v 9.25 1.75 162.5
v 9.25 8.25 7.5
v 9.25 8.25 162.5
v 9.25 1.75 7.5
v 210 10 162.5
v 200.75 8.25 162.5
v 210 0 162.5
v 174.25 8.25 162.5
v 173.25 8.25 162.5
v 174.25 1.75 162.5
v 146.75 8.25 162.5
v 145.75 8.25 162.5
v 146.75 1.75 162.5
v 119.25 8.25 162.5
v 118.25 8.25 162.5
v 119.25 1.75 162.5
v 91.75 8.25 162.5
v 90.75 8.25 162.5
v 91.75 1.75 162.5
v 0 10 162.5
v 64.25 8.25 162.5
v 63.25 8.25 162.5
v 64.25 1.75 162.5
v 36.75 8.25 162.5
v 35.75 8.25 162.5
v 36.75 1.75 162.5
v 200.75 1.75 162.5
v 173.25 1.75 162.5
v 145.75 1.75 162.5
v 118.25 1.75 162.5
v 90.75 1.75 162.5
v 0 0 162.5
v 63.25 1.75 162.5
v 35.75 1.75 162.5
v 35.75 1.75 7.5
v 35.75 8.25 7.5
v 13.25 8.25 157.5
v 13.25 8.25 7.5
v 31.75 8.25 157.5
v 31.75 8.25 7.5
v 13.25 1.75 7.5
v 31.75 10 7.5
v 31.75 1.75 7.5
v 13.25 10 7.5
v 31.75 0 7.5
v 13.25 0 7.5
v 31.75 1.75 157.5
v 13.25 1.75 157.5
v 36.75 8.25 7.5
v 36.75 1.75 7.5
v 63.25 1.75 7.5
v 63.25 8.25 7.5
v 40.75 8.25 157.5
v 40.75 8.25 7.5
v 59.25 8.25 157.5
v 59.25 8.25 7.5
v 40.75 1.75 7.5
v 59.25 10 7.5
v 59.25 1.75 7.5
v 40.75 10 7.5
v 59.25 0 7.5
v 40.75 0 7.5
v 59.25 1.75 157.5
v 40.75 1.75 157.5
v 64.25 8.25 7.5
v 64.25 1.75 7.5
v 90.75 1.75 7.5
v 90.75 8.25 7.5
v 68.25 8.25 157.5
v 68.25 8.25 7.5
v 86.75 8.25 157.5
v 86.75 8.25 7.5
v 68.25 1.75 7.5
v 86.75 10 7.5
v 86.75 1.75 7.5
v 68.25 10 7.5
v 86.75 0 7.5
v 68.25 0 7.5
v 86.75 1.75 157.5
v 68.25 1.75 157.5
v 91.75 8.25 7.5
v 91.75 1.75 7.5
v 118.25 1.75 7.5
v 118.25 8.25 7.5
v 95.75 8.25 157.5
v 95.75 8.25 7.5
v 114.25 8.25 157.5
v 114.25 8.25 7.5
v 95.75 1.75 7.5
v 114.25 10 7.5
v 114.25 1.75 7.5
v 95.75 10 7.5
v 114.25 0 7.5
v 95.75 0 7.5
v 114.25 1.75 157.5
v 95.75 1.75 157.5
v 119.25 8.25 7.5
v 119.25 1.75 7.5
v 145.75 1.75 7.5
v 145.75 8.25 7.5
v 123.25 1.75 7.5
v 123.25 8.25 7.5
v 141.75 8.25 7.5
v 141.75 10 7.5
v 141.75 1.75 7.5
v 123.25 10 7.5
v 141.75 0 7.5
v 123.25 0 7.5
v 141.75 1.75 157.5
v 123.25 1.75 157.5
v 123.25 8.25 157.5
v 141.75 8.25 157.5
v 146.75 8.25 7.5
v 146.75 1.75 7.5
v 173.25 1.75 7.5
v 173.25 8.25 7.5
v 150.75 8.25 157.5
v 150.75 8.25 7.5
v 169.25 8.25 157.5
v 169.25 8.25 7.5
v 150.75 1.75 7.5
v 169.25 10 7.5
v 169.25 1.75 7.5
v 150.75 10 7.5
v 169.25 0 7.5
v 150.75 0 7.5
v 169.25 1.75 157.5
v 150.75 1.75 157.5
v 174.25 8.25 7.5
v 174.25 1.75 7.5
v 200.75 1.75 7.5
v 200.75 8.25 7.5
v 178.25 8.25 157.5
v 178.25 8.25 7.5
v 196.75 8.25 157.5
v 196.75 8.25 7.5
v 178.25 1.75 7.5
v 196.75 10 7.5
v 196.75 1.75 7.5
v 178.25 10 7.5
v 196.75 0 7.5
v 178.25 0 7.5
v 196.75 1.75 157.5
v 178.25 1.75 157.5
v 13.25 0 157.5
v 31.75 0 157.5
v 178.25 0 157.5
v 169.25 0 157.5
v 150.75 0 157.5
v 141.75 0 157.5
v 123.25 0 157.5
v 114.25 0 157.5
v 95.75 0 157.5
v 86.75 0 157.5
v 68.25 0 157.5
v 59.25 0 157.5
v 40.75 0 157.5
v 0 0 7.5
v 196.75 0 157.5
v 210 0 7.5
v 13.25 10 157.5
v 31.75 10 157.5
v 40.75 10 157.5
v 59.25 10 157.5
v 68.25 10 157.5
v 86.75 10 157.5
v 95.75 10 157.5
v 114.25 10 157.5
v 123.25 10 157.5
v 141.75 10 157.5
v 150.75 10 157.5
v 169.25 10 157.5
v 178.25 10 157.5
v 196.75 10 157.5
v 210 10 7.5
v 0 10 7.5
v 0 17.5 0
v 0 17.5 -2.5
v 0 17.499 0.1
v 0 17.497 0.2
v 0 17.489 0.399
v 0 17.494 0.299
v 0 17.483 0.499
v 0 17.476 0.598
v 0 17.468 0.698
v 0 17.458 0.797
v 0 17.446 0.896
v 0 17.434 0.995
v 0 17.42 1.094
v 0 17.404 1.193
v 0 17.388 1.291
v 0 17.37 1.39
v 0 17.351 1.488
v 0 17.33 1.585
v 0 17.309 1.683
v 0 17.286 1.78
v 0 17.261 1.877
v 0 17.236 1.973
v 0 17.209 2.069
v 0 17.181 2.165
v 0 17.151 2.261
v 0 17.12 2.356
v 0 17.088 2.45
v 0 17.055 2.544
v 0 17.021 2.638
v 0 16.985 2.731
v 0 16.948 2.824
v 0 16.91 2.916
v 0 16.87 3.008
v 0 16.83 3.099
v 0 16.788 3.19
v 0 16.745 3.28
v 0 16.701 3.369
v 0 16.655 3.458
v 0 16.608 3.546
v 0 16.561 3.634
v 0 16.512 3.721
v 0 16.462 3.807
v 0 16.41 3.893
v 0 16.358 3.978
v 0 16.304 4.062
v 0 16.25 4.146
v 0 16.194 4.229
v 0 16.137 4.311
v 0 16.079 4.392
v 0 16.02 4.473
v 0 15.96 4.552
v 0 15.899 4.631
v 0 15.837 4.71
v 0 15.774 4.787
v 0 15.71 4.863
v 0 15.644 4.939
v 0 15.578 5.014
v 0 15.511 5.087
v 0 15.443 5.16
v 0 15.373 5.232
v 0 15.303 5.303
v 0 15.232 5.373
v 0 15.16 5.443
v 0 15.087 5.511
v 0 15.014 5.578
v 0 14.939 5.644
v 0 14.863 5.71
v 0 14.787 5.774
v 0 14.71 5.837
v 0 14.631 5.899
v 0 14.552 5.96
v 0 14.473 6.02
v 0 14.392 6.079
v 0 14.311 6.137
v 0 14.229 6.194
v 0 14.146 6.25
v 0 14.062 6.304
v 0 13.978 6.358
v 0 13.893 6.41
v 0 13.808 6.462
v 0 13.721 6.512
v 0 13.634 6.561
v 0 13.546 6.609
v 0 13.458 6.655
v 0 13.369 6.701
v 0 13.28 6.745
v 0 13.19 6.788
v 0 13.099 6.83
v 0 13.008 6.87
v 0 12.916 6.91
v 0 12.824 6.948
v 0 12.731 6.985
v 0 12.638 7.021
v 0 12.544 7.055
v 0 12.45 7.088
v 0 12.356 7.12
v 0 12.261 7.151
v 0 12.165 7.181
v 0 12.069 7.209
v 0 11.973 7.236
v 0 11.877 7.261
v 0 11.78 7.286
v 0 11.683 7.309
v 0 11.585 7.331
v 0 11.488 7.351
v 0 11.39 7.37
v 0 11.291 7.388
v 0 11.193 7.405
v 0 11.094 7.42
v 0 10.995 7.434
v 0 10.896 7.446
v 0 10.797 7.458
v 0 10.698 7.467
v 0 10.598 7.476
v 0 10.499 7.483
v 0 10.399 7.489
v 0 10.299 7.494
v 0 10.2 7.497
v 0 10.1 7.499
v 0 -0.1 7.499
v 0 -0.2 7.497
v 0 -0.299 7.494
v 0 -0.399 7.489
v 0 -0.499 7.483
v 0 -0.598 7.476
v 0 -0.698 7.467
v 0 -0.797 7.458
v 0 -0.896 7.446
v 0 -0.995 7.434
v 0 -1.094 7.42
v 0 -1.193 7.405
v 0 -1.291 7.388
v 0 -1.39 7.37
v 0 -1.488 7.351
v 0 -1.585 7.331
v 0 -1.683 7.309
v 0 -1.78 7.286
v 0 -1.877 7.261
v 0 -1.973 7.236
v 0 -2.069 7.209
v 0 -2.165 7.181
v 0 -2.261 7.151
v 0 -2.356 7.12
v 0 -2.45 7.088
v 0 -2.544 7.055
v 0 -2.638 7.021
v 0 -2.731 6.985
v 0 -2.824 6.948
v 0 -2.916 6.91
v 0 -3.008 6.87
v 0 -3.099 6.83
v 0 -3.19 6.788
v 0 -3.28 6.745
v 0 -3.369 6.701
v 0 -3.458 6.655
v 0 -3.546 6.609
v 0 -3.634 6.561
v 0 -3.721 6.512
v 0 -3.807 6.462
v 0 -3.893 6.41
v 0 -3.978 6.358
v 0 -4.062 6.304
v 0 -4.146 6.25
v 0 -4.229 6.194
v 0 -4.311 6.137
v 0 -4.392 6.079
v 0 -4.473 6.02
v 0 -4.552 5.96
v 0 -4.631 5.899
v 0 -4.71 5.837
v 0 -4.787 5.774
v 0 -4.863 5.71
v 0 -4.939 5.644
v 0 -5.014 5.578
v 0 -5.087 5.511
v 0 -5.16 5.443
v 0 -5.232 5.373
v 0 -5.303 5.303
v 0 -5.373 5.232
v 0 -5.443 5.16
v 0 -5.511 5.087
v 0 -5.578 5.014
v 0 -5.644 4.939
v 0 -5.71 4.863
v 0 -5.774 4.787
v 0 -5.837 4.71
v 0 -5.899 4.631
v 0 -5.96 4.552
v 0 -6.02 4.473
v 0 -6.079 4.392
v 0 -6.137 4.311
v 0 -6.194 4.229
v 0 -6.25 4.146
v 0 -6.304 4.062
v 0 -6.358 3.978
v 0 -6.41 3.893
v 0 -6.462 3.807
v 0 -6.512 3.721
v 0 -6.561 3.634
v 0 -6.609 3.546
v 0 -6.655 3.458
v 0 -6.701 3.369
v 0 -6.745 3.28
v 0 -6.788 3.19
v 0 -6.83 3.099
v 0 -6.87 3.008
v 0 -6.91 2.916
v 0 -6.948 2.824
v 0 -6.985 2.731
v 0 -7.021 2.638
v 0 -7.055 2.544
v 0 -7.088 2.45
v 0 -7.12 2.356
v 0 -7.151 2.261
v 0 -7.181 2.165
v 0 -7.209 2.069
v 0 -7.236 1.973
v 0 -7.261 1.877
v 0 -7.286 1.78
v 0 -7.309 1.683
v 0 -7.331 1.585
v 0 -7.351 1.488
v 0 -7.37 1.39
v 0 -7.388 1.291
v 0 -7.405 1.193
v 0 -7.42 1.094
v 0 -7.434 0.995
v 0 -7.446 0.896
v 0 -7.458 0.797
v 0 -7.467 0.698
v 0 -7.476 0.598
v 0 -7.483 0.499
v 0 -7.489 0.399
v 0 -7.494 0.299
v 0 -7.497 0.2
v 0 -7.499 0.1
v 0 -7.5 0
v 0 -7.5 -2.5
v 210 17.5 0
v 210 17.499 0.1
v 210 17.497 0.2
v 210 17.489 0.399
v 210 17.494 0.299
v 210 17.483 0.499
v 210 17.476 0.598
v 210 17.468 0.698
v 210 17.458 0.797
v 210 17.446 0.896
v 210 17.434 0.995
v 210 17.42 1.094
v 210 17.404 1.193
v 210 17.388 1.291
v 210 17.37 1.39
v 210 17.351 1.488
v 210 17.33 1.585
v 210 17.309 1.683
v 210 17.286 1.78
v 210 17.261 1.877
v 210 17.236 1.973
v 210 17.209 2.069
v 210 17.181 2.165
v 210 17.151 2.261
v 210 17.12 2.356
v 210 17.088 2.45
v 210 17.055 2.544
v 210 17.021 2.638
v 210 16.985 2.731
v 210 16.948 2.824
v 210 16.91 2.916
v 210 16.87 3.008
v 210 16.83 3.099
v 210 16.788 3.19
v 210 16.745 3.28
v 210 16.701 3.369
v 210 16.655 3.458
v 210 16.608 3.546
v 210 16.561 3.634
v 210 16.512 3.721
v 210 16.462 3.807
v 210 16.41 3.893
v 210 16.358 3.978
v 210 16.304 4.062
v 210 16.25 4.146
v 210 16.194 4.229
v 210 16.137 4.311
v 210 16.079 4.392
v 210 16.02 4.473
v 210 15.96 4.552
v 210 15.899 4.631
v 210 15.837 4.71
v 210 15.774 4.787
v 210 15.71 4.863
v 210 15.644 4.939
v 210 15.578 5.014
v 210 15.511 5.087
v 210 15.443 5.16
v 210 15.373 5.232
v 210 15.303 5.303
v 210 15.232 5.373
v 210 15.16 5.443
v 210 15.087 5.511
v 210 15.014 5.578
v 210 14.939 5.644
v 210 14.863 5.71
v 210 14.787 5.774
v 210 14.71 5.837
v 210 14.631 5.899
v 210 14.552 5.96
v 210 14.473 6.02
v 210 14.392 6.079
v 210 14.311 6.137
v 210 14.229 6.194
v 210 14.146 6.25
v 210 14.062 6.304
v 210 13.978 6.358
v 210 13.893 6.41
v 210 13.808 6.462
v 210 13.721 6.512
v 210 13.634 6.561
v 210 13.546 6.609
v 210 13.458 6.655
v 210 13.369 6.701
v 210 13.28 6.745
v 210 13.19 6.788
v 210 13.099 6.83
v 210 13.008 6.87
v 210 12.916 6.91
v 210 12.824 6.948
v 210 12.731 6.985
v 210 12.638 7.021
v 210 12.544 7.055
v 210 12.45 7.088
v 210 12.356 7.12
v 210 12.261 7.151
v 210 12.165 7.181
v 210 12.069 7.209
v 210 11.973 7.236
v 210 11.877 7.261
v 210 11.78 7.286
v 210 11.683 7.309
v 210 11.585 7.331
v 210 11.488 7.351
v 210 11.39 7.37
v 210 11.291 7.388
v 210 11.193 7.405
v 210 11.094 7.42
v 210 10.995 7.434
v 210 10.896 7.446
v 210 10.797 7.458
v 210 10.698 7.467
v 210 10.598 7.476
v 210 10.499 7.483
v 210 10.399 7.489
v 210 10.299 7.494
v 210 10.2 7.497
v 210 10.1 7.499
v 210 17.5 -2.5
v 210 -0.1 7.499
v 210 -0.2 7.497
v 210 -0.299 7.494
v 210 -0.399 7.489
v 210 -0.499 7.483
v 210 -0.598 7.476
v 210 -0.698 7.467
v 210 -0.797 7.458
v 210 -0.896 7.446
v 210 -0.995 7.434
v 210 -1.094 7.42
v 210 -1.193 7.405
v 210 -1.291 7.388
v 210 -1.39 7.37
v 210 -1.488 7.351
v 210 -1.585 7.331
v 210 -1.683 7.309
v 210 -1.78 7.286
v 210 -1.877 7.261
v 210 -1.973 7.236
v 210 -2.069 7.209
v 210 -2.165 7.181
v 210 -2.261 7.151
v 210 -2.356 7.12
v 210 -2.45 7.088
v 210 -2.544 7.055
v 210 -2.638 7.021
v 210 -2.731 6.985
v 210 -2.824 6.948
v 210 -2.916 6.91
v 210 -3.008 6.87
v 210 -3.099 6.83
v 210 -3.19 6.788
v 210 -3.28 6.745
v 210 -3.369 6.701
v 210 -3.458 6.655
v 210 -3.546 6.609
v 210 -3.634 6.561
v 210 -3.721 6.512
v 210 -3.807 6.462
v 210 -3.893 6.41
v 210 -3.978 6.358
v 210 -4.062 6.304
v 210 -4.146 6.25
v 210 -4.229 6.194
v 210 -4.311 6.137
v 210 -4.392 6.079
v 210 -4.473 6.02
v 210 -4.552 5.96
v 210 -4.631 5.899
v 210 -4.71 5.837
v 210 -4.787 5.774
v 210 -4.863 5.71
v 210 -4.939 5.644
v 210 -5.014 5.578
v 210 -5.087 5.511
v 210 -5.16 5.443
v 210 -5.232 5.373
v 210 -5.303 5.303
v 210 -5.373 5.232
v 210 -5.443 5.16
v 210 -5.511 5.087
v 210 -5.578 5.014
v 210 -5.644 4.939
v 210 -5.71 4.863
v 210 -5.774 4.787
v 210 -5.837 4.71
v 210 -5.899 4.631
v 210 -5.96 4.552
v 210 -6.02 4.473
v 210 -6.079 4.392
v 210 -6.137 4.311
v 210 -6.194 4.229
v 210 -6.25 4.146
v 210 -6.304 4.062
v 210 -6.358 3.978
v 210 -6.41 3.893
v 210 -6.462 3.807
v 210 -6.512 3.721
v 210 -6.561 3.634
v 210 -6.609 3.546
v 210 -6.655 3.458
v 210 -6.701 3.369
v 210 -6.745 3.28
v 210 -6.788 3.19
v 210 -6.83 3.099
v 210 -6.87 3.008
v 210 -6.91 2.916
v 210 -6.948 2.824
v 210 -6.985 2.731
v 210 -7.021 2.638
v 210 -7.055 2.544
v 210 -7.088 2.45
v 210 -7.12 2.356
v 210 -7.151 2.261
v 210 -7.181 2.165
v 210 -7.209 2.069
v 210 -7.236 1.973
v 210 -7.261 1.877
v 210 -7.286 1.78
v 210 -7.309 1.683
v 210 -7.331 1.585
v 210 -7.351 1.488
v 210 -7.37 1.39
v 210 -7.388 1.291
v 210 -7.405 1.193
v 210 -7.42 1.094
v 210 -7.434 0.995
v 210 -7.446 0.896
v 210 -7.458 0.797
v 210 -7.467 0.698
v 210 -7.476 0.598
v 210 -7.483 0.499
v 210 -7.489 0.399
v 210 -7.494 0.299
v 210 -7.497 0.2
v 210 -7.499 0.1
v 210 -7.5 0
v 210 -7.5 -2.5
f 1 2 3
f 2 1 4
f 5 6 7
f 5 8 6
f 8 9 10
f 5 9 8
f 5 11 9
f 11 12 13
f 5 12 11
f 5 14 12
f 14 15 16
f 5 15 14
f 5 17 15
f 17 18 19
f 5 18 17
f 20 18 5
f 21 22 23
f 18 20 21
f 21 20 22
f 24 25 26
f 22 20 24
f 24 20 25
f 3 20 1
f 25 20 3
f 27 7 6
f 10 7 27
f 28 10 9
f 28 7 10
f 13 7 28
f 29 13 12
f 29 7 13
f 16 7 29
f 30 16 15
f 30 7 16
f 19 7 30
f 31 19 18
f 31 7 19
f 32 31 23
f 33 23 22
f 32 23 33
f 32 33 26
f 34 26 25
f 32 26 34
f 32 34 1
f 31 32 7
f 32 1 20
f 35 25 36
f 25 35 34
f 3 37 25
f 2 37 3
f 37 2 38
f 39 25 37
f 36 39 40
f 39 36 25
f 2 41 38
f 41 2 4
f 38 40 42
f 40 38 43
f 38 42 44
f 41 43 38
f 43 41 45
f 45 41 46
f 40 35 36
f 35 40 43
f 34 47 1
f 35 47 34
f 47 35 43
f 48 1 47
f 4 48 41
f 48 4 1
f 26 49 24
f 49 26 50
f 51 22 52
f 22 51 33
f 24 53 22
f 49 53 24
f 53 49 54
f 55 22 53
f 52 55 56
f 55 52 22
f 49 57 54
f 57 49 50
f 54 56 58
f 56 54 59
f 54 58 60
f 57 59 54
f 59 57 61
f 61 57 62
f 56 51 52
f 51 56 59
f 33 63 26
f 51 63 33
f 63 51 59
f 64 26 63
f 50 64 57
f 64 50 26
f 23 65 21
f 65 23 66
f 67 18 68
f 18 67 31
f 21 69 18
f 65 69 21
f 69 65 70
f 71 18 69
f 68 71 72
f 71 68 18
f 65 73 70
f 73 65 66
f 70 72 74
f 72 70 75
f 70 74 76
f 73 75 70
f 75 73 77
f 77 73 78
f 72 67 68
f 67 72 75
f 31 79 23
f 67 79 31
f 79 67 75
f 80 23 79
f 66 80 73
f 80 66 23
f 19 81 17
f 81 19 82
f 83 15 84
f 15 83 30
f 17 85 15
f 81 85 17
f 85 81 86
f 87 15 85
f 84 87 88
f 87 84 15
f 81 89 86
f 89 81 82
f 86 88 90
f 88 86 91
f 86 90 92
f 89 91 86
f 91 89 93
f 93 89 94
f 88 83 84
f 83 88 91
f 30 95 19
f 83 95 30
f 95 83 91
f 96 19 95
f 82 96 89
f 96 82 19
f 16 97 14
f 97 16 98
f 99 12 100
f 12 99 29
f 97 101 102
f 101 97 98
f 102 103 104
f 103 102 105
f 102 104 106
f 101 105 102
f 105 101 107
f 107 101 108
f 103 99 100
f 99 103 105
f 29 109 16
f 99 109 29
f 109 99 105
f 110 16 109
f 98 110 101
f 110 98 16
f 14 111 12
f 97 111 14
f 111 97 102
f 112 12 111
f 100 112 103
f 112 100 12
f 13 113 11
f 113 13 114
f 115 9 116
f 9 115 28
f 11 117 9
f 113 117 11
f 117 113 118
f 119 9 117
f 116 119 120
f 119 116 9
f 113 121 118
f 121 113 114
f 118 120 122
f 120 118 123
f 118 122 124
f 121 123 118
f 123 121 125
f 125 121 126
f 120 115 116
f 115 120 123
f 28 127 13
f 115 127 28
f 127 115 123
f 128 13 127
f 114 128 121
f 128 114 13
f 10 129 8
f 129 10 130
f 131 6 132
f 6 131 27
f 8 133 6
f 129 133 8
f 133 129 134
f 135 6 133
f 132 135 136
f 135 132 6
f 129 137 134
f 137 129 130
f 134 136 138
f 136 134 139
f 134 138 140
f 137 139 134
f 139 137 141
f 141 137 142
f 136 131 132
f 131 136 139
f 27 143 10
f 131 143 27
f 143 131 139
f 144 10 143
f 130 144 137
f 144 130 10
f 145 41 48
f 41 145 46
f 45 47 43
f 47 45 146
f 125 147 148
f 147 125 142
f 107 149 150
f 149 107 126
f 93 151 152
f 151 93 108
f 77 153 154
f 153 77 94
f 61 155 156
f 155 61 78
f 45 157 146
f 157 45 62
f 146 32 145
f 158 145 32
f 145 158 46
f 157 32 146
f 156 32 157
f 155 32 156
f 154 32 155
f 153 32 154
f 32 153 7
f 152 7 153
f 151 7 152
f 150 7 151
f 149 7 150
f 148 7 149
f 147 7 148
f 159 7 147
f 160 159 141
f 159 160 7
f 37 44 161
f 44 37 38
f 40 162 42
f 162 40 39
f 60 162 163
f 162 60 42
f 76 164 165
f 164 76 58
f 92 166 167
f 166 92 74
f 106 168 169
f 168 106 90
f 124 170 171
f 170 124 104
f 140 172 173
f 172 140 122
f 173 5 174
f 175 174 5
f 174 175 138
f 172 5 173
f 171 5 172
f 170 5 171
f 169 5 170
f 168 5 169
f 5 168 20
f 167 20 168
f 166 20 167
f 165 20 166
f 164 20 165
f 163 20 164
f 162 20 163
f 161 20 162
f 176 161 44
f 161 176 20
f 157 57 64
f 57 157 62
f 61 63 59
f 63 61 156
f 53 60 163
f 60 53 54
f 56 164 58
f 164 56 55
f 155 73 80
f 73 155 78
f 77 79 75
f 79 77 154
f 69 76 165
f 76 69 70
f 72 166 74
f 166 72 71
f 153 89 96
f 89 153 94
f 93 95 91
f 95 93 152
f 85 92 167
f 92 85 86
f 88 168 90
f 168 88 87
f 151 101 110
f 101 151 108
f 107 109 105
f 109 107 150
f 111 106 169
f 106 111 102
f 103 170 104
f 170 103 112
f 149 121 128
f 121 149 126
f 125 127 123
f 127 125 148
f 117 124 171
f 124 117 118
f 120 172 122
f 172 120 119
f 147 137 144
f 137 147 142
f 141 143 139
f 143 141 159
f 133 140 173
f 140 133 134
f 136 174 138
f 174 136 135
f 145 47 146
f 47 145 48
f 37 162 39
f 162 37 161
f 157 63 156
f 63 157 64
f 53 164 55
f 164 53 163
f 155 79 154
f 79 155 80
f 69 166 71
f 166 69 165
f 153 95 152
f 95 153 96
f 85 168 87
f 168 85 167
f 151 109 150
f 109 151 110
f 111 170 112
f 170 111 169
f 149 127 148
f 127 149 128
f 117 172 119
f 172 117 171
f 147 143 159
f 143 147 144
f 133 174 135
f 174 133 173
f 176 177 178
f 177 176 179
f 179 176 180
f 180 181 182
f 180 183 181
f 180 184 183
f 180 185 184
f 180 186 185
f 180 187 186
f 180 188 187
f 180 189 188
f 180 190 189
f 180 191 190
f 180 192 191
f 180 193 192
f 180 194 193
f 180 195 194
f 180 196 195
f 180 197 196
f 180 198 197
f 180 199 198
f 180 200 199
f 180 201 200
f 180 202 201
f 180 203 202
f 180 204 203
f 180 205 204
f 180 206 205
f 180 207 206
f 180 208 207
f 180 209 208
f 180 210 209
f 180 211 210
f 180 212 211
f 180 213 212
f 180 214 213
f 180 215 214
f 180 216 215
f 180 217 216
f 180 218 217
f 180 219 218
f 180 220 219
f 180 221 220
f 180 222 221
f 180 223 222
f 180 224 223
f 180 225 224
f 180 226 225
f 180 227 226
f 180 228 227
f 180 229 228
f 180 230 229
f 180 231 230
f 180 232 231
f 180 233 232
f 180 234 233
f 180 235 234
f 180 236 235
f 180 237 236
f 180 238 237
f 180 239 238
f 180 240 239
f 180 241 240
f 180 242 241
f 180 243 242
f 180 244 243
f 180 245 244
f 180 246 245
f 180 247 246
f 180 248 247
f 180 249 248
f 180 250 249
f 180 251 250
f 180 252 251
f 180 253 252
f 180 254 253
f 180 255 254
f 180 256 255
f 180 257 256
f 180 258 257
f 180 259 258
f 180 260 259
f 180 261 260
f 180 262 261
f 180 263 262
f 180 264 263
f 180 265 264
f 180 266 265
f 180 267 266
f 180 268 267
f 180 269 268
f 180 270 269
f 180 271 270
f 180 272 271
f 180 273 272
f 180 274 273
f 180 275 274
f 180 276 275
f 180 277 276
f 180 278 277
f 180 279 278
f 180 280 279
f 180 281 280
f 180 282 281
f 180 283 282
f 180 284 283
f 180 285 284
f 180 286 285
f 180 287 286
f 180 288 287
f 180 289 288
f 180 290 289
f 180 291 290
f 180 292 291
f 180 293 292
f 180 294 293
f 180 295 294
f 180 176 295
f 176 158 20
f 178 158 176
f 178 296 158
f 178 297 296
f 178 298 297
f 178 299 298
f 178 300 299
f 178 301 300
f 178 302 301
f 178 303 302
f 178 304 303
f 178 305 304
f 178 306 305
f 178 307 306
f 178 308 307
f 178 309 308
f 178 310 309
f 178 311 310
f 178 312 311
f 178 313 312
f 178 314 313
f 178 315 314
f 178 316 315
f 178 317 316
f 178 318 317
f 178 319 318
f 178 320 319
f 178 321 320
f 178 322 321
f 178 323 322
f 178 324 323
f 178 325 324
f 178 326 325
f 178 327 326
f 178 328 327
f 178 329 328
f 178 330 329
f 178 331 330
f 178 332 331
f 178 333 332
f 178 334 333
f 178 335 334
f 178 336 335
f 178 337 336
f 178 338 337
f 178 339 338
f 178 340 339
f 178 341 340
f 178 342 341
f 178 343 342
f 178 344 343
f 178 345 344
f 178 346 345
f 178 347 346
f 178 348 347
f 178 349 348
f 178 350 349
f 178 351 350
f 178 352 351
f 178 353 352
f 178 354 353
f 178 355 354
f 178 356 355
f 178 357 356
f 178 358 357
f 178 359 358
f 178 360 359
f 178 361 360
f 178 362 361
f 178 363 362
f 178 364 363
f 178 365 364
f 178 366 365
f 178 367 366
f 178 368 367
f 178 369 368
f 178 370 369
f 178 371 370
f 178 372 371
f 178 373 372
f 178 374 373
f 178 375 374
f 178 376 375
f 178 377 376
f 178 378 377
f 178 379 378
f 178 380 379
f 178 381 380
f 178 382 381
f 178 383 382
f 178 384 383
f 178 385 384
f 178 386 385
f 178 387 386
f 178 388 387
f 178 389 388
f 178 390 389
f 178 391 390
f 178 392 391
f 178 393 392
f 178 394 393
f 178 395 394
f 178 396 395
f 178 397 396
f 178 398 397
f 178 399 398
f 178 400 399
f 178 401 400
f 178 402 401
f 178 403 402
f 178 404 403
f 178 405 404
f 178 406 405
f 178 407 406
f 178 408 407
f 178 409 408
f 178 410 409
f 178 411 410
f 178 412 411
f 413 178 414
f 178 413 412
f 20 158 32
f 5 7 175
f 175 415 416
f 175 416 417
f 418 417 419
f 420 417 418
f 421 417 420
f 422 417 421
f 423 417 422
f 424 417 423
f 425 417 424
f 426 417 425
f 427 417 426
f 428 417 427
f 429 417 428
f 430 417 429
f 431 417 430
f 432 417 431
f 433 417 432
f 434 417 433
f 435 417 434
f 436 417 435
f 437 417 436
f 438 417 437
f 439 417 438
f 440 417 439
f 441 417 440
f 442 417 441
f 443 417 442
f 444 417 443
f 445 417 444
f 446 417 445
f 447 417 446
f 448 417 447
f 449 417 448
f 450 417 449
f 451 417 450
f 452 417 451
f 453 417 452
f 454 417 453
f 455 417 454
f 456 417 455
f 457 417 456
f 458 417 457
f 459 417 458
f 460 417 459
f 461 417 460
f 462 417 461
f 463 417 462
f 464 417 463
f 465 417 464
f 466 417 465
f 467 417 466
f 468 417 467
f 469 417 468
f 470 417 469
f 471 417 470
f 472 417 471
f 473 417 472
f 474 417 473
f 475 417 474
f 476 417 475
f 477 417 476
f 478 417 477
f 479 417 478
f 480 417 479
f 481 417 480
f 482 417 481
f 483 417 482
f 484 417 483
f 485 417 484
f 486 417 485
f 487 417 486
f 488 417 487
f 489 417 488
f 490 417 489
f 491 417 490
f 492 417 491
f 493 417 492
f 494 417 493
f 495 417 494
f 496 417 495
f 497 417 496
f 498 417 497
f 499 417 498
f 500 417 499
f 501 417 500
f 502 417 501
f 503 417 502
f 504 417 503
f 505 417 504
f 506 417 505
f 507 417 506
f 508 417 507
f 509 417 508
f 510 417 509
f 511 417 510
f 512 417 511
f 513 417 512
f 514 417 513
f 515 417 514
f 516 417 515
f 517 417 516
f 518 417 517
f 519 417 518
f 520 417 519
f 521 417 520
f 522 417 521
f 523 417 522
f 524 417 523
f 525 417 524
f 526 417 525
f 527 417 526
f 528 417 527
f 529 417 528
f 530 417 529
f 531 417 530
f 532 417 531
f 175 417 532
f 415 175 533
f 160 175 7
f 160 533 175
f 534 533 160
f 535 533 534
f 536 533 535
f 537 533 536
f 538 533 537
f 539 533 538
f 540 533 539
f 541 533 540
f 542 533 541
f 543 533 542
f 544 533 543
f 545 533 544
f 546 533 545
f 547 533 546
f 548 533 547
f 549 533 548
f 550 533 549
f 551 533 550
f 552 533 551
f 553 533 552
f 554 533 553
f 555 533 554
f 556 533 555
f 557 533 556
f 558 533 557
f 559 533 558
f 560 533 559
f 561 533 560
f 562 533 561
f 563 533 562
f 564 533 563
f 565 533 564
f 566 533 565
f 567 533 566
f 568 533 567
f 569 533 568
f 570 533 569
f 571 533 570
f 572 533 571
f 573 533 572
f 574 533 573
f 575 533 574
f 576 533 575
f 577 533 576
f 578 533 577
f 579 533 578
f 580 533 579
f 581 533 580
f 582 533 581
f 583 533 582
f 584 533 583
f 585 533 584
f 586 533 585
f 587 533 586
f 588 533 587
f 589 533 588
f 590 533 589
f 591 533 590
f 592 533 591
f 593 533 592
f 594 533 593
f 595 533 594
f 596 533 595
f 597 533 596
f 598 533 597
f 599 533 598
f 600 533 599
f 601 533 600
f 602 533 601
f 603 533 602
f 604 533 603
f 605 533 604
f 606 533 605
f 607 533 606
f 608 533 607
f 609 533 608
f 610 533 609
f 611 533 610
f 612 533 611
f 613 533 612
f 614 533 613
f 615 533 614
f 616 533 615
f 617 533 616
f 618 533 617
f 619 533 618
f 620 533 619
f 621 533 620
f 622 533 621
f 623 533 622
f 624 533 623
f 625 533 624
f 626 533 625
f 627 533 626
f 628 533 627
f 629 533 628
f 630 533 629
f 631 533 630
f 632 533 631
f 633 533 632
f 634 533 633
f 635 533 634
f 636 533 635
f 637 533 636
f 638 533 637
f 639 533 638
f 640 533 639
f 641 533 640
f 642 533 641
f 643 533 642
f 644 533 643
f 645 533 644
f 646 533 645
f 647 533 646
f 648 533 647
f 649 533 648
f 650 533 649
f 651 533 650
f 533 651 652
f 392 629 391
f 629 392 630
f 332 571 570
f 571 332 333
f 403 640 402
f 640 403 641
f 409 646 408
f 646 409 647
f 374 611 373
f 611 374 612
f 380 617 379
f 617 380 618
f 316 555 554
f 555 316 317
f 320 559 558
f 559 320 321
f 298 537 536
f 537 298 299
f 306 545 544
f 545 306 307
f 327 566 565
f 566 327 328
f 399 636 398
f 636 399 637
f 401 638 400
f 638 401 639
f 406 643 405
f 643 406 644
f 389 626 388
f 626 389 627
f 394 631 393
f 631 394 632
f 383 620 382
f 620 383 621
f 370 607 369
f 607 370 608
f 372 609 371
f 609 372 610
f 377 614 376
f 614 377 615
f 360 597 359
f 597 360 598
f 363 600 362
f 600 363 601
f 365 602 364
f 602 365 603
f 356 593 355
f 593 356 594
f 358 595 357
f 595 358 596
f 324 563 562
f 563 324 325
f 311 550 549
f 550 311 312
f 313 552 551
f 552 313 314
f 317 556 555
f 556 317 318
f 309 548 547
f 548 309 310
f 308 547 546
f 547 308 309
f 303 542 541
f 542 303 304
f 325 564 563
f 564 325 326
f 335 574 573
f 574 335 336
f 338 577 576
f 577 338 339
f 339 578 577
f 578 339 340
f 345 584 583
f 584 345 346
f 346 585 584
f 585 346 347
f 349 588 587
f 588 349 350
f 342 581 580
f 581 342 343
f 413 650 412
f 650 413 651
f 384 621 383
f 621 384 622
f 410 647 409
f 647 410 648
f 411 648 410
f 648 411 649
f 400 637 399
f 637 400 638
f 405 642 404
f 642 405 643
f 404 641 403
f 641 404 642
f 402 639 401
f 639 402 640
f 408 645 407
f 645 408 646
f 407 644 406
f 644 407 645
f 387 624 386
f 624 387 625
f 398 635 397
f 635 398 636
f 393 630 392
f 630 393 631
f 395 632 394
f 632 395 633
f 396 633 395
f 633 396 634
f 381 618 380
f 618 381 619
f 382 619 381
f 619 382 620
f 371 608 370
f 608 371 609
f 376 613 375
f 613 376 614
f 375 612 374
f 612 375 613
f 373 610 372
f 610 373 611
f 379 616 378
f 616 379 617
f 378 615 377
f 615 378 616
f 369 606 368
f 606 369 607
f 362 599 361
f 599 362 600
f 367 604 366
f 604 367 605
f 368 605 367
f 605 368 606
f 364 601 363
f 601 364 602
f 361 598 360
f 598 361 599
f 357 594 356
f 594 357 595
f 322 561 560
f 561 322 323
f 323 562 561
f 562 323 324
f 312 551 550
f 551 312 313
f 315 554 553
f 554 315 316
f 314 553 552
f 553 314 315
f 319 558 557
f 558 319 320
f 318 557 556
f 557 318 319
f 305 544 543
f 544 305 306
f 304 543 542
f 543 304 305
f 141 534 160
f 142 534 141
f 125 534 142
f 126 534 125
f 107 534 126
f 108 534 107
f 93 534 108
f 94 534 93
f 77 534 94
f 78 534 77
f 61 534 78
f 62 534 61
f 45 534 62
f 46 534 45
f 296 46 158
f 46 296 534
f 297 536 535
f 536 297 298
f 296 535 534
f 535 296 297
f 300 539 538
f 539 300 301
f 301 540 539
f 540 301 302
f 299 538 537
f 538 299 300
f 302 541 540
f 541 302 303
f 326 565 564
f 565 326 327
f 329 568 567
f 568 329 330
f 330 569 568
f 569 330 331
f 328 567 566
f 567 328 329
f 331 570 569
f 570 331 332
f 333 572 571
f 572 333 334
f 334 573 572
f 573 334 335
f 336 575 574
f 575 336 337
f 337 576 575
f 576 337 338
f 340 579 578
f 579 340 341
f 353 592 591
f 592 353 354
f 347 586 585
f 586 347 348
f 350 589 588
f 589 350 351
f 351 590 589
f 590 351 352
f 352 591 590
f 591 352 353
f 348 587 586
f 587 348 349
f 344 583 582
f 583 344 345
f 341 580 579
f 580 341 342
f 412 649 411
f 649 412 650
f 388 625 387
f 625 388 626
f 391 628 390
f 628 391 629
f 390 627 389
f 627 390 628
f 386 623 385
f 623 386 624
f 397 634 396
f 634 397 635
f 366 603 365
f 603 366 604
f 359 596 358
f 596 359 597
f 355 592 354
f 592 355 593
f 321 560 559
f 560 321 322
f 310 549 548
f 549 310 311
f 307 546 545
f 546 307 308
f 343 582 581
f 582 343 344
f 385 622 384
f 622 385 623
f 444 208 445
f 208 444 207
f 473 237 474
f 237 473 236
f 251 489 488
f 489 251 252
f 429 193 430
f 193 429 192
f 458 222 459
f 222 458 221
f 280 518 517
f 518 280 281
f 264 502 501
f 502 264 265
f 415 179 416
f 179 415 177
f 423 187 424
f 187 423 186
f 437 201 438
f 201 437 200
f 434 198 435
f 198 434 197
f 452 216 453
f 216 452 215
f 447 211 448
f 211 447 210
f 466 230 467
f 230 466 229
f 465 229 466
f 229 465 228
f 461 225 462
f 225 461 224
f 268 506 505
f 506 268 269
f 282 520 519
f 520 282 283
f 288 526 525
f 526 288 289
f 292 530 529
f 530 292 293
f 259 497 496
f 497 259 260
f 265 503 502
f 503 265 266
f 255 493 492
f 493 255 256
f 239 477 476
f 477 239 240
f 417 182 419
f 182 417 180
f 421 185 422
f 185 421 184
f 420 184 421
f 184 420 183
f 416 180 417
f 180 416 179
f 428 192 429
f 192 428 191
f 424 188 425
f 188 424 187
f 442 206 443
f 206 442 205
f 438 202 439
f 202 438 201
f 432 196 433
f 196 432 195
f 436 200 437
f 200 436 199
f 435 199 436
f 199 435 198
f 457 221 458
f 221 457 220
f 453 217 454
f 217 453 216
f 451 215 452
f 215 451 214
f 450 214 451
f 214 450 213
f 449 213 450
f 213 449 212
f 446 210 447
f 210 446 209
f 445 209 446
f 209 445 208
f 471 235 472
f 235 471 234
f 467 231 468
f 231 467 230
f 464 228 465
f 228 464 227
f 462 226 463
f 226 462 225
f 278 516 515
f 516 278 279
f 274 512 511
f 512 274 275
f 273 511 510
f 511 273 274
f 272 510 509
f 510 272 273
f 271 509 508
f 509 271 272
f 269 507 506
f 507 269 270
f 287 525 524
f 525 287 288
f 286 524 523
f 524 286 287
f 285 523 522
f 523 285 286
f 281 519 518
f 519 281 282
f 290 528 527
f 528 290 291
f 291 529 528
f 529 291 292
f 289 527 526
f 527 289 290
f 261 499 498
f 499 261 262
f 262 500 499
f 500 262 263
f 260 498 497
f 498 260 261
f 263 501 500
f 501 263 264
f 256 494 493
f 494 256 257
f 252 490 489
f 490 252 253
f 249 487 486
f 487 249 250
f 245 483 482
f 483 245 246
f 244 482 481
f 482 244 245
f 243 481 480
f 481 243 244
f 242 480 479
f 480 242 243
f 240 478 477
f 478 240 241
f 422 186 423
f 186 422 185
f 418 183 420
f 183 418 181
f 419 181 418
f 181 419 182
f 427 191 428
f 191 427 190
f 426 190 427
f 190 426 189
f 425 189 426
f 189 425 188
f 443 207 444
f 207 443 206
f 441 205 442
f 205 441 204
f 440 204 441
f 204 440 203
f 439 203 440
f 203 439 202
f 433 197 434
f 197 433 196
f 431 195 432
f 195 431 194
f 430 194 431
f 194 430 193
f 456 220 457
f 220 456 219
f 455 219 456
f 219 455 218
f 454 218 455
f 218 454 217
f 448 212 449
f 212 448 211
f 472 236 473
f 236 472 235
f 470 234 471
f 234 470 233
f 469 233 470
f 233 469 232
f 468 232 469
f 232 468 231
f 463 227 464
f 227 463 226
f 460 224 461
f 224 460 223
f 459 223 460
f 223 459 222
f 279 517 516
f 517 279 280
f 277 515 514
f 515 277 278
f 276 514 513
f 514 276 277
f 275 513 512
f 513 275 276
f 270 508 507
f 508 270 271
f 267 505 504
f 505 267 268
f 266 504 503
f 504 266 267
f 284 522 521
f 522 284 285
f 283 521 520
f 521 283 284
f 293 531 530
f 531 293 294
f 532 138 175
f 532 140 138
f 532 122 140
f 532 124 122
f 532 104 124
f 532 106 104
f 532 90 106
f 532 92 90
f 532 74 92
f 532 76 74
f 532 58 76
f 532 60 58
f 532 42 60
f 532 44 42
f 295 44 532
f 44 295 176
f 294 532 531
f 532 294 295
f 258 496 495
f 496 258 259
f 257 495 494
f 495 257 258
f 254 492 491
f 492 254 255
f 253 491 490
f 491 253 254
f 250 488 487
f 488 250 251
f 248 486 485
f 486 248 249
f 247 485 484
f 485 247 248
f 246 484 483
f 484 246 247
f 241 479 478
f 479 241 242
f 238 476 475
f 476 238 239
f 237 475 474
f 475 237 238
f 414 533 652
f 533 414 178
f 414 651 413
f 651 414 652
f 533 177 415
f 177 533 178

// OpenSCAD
$fa=0.1;$fs=0.1;

$columns=7;
$rows=6;

$pawnHeight=5;
$pawnWidth=25;

$floorHeight=7.5;
$wallWidth=2.5;
$wallOuter=10;
$wallPartition=2.5;
$wallMargin=0.75;

$windowMargin=4;

$standMargin=7.5;
$standHeight=2.5;

$roofHeight=5;

module board() {
width=$pawnWidth*$columns+$wallPartition*($columns-1)+$wallOuter*2;
depth = $wallWidth*2+$pawnHeight;
height=$floorHeight+$pawnWidth*$rows+$roofHeight;

difference() {
cube([width, depth, height]);

for( col = [0:$columns-1])
translate([$pawnWidth*col+$wallPartition*col+$wallOuter-$wallMargin, $wallWidth-$wallMargin, $floorHeight])
cube([$pawnWidth+$wallMargin*2, $pawnHeight+$wallMargin*2, height-$floorHeight]);

for( row = [0:$rows-1]) {
for( col = [0:$columns-1]) {
x=$wallPartition*col+$wallOuter+$pawnWidth*col-$wallMargin+$windowMargin;
z=$floorHeight+$pawnWidth*row;
w=$pawnWidth+$wallMargin*2-$windowMargin*2;
d=$wallWidth;
h=$pawnWidth;

translate([x, 0, z])
cube([w,d,h]);

translate([x, depth-d, z])
cube([w,d,h]);
}
}

}

translate([0, -$standMargin, -$standHeight])
cube([width, depth+$standMargin*2, $standHeight]);

translate([width/2, 0, 0])
difference() {
rotate([0,90,0])
cylinder(r=$floorHeight, h=width, center=true);
translate([0, 0, -$floorHeight/2])
cube([width,$floorHeight*2,$floorHeight], center=true);
}

translate([width/2, depth, 0])
difference() {
rotate([0,90,180])
cylinder(r=$floorHeight, h=width, center=true);
translate([0, 0, -$floorHeight/2])
cube([width,$floorHeight*2,$floorHeight], center=true);
}
}



board();
